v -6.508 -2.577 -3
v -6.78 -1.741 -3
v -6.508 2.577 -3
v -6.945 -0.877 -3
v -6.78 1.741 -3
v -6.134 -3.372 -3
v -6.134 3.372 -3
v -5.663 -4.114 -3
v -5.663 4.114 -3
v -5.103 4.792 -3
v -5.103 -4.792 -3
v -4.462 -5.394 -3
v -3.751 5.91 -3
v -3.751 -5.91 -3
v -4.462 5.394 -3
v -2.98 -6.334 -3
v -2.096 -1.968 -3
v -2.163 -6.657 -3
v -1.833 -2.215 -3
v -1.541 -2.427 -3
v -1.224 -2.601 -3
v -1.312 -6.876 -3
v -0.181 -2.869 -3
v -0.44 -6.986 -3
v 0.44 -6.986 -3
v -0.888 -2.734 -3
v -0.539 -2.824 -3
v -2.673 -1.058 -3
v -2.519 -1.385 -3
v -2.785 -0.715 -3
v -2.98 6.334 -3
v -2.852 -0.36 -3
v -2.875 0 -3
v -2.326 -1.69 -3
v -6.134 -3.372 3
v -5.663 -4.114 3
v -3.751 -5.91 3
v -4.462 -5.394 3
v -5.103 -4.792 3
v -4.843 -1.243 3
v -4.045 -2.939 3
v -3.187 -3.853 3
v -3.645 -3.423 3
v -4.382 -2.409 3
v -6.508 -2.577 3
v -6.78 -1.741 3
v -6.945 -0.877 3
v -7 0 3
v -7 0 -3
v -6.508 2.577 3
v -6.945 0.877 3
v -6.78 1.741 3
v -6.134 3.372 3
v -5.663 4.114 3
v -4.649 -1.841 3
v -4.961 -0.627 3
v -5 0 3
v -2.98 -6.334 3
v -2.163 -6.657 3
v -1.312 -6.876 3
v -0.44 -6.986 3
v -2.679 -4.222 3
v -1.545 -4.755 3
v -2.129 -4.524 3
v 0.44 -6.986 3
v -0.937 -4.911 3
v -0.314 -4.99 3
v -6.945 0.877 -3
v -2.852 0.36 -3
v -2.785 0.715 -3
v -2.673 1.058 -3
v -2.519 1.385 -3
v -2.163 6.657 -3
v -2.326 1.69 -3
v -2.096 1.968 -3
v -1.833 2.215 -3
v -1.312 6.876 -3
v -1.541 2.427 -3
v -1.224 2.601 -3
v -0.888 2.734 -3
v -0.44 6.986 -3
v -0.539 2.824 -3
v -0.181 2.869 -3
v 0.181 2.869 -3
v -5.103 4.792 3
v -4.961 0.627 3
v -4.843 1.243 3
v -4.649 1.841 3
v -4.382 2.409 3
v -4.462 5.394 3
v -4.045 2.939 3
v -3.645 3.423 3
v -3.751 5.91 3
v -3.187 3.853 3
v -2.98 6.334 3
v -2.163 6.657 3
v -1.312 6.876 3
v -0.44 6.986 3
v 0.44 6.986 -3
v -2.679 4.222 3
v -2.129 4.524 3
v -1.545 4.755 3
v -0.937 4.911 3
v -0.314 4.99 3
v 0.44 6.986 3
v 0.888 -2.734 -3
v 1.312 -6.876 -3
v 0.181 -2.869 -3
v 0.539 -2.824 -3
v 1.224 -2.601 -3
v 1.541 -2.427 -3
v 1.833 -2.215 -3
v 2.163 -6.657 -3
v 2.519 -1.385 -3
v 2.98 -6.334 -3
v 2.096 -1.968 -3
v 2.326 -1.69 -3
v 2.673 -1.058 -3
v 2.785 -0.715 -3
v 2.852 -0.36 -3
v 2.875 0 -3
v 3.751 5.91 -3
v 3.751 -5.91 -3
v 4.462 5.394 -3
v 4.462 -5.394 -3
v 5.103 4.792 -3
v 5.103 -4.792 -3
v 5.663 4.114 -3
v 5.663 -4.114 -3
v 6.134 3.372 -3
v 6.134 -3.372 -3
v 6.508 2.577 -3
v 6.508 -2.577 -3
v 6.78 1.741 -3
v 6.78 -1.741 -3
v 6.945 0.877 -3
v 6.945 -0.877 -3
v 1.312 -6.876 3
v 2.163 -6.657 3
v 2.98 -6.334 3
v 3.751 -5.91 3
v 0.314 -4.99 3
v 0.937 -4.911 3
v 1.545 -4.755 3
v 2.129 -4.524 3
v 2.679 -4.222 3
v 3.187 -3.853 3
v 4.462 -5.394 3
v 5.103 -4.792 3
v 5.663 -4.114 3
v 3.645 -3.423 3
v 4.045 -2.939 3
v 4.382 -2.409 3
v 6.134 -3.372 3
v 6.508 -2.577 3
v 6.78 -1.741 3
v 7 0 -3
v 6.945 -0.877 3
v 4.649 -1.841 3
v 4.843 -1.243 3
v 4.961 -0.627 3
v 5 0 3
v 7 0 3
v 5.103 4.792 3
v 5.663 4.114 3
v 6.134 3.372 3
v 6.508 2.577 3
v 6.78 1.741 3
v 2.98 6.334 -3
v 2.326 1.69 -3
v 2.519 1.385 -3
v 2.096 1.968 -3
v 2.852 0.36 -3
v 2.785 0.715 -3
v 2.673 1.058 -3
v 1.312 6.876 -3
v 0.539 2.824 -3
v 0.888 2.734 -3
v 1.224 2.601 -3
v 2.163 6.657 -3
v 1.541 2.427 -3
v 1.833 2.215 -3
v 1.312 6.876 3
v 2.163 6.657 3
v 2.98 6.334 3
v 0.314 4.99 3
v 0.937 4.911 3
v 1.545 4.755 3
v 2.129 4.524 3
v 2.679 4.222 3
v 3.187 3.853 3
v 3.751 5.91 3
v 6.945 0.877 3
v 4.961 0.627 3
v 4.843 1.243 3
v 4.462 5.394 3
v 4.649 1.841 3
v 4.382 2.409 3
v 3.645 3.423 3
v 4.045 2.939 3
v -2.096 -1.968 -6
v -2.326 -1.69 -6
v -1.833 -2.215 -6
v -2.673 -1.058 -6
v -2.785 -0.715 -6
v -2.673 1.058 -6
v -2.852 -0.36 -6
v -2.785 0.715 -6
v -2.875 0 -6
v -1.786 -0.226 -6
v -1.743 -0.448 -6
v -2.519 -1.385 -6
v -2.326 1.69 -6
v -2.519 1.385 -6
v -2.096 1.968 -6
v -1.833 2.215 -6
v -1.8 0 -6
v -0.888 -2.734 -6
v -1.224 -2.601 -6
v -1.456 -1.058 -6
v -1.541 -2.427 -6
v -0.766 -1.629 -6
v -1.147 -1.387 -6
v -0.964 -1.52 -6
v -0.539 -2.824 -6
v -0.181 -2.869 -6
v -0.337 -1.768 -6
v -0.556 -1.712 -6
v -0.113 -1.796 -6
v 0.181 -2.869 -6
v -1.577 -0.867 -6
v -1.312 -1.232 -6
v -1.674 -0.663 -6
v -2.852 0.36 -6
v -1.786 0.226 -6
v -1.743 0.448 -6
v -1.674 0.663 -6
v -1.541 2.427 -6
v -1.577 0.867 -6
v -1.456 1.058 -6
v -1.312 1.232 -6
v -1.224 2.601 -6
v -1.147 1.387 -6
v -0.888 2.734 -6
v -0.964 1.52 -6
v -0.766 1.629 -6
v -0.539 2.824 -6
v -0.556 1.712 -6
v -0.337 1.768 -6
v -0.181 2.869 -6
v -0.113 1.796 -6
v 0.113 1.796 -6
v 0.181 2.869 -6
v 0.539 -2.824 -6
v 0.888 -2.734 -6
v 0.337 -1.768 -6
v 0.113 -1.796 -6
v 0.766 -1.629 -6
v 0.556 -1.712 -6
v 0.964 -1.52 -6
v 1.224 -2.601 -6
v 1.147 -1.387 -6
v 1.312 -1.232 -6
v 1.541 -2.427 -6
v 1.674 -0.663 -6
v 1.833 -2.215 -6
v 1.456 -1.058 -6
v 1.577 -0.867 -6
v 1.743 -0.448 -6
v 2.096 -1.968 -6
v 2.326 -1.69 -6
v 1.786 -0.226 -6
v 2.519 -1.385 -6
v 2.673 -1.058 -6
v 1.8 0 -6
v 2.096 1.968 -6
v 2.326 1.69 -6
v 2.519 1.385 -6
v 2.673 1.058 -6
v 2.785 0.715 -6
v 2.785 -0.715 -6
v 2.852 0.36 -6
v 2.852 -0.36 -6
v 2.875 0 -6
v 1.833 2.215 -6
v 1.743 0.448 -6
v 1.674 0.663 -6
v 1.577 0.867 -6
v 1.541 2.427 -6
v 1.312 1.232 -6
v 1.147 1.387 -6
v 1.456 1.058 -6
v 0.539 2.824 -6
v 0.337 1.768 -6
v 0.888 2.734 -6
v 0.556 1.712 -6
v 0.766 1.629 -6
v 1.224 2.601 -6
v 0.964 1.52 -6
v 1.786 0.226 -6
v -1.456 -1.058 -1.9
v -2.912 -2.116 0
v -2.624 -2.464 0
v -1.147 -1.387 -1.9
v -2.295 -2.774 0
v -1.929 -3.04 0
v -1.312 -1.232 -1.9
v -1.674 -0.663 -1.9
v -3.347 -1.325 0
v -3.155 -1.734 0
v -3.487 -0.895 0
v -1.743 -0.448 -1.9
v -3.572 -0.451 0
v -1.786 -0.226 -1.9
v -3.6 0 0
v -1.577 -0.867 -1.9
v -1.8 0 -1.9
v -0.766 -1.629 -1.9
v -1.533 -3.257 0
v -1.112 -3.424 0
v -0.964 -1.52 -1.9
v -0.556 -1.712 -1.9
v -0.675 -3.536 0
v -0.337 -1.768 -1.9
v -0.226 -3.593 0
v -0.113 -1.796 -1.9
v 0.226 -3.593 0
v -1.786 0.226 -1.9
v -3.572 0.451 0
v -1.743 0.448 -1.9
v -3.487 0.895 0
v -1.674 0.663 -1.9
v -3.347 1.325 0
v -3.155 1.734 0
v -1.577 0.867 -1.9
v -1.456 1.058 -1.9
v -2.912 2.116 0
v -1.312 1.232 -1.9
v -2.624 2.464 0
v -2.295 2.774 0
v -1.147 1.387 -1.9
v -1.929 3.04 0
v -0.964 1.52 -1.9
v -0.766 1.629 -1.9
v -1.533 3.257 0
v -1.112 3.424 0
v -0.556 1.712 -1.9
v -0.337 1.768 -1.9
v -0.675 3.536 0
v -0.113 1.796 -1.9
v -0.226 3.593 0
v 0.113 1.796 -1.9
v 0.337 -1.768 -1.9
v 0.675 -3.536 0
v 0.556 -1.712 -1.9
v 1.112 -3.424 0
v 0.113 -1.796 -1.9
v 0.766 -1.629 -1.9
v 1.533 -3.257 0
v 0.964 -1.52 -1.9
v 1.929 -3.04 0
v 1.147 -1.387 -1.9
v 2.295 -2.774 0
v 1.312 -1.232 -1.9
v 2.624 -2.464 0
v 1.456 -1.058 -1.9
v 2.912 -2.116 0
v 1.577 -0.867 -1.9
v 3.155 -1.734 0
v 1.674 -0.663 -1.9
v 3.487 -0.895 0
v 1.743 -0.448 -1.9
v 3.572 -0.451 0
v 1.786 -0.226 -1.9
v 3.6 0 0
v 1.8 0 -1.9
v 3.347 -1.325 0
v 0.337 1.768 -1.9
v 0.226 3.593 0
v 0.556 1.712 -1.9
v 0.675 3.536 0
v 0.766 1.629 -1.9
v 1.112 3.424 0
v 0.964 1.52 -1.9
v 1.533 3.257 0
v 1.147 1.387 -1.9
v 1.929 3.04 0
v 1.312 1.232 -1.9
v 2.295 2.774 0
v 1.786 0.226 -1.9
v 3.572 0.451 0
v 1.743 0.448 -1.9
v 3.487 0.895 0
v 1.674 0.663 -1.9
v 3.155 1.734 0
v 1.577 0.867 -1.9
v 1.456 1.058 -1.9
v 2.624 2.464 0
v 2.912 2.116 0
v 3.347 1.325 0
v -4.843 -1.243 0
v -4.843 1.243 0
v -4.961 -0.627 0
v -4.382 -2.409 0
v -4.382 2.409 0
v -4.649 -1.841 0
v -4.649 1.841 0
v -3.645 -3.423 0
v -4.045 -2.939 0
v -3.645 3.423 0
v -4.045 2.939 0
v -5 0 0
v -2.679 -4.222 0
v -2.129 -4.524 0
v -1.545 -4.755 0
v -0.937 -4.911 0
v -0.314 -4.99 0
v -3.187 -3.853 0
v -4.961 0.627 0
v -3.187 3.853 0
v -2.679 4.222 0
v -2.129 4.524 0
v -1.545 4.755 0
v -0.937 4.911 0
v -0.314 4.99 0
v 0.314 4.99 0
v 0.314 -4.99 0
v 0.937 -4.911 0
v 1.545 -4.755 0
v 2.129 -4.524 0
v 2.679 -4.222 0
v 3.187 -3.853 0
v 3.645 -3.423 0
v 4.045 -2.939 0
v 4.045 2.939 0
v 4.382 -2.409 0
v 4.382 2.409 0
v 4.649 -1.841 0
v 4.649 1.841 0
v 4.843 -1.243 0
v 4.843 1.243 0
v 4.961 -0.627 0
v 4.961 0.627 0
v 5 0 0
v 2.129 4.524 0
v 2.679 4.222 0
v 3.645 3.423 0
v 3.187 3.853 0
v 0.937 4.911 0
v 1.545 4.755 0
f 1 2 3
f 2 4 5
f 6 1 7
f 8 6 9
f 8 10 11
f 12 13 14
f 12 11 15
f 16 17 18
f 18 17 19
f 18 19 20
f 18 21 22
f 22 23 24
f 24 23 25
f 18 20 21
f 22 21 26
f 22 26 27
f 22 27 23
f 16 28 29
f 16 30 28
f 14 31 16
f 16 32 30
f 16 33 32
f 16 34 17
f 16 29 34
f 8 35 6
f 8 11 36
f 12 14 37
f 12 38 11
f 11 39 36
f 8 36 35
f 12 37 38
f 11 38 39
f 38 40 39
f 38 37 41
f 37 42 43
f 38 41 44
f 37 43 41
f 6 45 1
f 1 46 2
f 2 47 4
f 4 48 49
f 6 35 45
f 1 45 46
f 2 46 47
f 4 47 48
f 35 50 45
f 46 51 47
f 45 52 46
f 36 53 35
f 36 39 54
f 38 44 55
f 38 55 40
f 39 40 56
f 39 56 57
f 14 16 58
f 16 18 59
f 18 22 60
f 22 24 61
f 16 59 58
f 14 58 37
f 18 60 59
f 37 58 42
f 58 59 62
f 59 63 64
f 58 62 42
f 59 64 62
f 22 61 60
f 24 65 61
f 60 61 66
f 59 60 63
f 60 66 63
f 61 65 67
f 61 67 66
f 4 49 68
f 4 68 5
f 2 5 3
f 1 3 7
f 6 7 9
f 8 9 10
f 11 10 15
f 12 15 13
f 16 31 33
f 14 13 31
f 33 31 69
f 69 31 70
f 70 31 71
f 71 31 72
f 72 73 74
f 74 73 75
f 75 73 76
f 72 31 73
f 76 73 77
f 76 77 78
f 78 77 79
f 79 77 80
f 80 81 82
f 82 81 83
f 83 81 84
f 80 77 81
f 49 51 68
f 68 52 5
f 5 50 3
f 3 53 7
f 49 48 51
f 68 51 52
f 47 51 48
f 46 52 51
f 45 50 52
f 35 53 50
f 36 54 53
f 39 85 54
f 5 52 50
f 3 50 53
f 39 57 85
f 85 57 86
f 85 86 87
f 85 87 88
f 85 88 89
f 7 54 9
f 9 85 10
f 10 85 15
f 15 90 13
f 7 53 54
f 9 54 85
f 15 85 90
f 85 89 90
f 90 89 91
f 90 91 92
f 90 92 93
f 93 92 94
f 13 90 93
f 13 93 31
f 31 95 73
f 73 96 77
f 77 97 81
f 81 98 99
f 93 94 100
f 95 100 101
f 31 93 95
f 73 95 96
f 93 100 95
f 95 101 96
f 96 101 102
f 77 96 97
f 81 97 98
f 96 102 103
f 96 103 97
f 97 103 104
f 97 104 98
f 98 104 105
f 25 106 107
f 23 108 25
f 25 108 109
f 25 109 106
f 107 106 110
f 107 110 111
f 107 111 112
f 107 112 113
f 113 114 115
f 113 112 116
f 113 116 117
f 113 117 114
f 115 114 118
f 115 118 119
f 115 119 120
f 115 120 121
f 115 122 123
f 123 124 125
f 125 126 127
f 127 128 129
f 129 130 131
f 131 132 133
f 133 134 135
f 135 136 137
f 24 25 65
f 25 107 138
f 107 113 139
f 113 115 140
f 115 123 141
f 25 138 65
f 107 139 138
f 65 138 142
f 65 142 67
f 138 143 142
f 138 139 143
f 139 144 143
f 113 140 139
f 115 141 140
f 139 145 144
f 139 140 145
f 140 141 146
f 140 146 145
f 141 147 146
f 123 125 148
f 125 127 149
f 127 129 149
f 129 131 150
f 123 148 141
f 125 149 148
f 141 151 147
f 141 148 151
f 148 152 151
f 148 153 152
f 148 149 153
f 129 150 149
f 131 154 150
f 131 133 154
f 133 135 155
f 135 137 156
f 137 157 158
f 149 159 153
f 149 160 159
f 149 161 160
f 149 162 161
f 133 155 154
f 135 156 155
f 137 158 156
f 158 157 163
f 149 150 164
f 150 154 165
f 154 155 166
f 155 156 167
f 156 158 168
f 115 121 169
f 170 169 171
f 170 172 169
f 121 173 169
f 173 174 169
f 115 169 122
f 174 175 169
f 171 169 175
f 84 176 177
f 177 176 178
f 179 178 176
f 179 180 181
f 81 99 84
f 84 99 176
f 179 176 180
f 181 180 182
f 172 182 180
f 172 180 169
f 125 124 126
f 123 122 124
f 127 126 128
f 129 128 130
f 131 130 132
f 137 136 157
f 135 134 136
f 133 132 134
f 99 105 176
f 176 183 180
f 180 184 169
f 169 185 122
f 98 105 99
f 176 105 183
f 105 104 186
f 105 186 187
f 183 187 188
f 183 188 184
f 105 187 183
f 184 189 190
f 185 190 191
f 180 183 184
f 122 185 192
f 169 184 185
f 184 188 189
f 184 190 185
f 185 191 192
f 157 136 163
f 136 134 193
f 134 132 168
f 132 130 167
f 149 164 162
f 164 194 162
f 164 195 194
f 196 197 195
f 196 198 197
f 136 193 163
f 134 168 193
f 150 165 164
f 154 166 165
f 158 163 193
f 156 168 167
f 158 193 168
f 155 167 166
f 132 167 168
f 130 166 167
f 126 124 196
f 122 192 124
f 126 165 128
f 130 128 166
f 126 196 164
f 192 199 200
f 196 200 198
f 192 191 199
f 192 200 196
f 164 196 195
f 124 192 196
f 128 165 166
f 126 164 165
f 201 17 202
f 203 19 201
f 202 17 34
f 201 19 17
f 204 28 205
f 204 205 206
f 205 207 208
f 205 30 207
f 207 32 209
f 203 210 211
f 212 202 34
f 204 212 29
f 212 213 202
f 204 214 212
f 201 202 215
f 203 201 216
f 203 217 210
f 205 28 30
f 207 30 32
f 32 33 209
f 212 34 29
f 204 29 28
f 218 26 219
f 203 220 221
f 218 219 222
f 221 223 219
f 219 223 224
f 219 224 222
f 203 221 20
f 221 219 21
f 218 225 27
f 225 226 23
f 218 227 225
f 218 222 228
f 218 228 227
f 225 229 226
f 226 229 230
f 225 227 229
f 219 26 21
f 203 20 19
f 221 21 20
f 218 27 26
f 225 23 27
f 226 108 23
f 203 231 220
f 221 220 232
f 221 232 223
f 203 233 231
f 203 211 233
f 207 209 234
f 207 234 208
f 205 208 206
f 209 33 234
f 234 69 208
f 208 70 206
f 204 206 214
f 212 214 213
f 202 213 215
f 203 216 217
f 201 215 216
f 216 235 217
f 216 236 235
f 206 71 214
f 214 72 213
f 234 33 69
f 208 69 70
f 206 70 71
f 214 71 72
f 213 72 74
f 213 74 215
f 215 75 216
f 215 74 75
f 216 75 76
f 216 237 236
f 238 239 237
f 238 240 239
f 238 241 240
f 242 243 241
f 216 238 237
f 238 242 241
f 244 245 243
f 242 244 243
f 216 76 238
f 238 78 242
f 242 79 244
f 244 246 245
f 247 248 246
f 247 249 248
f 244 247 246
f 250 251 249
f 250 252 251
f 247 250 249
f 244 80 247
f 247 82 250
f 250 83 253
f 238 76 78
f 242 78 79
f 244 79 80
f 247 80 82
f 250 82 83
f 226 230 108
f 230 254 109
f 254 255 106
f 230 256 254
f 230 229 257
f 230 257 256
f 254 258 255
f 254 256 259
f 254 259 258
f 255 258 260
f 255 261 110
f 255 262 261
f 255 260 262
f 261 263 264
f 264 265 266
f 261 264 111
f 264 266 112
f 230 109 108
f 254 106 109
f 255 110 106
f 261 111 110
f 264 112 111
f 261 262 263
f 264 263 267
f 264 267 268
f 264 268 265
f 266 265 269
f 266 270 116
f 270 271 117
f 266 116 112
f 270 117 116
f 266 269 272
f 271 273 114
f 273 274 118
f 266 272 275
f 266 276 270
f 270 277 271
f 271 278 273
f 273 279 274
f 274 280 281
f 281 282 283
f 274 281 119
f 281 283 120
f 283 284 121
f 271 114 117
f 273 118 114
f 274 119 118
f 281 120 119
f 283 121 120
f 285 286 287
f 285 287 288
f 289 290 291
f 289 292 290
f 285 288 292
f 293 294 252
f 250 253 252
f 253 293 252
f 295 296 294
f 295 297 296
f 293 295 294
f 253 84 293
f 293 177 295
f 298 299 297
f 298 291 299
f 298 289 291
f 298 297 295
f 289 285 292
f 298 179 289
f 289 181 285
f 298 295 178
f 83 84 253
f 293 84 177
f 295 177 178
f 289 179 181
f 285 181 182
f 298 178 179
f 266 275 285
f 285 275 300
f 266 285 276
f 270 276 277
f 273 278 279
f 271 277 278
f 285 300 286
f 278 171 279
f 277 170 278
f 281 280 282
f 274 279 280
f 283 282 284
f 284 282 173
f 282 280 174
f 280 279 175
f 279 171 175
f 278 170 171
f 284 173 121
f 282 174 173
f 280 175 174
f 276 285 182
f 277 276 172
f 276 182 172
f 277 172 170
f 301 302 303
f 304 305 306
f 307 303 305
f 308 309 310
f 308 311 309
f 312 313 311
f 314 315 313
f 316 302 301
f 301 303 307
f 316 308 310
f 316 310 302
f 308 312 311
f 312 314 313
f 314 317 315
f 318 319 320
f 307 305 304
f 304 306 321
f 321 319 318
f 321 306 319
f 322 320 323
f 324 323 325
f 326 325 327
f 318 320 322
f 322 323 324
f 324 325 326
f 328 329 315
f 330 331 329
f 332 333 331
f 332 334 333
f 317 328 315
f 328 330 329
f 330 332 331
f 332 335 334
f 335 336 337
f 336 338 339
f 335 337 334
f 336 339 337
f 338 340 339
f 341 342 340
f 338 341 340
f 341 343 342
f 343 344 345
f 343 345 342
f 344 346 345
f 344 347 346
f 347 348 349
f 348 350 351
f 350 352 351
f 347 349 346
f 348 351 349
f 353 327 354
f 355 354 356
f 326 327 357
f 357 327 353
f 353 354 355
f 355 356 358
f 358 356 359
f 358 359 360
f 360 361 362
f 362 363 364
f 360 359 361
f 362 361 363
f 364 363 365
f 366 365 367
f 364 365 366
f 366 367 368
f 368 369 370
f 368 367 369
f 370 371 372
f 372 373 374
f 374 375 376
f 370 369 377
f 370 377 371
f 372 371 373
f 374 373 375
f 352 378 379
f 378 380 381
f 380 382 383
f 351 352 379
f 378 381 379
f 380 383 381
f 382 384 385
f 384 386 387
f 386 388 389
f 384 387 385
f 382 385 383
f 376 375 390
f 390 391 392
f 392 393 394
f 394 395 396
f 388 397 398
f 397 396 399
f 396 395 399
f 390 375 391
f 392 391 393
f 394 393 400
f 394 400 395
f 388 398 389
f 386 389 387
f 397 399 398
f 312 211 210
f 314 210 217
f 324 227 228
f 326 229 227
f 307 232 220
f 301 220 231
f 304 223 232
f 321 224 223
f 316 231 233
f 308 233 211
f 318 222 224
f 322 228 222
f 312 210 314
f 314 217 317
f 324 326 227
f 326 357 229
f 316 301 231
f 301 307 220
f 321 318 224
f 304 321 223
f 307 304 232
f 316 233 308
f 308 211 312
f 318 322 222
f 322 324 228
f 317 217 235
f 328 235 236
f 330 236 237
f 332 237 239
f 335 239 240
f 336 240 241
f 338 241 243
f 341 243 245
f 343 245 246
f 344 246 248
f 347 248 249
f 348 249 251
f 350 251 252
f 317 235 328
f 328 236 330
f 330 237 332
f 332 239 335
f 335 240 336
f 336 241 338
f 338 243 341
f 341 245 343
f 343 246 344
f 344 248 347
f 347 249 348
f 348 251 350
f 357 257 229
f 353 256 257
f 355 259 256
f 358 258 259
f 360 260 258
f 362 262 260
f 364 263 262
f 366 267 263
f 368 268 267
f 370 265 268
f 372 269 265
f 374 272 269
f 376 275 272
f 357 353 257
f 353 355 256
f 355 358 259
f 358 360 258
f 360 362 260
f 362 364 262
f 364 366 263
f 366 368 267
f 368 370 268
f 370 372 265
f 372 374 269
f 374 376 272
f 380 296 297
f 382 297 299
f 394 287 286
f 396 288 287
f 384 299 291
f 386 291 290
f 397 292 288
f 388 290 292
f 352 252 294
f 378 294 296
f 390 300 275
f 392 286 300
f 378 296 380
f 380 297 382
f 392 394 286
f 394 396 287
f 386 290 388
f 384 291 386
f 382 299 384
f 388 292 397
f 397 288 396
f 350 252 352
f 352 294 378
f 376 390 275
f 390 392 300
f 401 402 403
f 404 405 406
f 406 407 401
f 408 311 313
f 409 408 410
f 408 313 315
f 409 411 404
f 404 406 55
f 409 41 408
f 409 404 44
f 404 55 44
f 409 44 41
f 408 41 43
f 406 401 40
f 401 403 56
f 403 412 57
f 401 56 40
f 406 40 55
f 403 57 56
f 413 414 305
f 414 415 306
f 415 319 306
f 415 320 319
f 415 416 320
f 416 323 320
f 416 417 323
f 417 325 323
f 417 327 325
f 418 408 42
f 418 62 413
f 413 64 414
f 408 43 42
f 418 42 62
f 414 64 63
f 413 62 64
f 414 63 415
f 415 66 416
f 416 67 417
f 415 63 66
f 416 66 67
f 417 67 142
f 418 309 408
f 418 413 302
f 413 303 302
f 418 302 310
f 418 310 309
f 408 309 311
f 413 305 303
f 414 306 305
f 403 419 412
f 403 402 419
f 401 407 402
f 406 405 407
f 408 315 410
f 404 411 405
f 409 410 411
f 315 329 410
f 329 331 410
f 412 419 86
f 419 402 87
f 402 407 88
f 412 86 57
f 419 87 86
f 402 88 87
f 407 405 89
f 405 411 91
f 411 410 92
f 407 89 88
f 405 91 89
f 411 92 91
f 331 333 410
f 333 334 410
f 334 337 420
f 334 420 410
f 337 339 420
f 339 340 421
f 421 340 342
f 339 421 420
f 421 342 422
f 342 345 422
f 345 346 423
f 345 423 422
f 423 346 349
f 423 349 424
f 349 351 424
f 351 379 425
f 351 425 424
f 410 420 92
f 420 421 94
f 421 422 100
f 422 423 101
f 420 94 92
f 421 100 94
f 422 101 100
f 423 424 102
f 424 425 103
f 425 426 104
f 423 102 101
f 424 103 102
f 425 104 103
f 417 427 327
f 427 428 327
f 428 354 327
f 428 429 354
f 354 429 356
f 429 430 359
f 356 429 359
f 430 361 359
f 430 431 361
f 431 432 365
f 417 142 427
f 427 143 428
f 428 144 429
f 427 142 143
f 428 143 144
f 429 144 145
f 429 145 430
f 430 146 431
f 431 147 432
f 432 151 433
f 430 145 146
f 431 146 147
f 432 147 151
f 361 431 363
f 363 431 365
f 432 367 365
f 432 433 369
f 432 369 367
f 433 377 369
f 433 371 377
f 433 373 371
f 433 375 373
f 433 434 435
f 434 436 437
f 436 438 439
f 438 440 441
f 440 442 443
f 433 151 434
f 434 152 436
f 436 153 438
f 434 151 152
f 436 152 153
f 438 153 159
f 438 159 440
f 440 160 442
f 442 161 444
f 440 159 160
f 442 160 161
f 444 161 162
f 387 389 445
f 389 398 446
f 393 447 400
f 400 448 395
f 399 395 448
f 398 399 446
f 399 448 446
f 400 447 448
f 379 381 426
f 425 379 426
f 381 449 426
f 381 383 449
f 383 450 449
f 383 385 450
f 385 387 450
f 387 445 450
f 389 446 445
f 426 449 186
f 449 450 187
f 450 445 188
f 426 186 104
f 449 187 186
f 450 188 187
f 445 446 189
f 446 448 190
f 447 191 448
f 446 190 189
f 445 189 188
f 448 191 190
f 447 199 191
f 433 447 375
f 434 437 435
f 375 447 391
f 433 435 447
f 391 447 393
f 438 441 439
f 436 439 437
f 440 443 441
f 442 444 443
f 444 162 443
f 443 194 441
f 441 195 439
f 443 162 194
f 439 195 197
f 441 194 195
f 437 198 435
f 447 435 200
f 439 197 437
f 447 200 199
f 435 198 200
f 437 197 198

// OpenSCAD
$fn = 50;

difference() {
	union() {
		translate(v = [0, 0, -3.0]) {
			cylinder(h = 6, r = 7.0);
		}
		#translate(v = [0, 0, -6.0]) {
			cylinder(h = 6, r = 2.875);
		}
	}
	union() {
		translate(v = [0, 0, 0]) {
			rotate(a = [0, 0, 0]) {
				difference() {
					union() {
						translate(v = [0, 0, -6.0]) {
							cylinder(h = 6, r = 1.5);
						}
						translate(v = [0, 0, -1.9]) {
							cylinder(h = 1.9, r1 = 1.8, r2 = 3.6);
						}
						translate(v = [0, 0, -6.0]) {
							cylinder(h = 6, r = 1.8);
						}
						translate(v = [0, 0, -6.0]) {
							cylinder(h = 6, r = 1.5);
						}
					}
					union();
				}
			}
		}
		#cylinder(h = 3, r = 5.0);
	}
}
